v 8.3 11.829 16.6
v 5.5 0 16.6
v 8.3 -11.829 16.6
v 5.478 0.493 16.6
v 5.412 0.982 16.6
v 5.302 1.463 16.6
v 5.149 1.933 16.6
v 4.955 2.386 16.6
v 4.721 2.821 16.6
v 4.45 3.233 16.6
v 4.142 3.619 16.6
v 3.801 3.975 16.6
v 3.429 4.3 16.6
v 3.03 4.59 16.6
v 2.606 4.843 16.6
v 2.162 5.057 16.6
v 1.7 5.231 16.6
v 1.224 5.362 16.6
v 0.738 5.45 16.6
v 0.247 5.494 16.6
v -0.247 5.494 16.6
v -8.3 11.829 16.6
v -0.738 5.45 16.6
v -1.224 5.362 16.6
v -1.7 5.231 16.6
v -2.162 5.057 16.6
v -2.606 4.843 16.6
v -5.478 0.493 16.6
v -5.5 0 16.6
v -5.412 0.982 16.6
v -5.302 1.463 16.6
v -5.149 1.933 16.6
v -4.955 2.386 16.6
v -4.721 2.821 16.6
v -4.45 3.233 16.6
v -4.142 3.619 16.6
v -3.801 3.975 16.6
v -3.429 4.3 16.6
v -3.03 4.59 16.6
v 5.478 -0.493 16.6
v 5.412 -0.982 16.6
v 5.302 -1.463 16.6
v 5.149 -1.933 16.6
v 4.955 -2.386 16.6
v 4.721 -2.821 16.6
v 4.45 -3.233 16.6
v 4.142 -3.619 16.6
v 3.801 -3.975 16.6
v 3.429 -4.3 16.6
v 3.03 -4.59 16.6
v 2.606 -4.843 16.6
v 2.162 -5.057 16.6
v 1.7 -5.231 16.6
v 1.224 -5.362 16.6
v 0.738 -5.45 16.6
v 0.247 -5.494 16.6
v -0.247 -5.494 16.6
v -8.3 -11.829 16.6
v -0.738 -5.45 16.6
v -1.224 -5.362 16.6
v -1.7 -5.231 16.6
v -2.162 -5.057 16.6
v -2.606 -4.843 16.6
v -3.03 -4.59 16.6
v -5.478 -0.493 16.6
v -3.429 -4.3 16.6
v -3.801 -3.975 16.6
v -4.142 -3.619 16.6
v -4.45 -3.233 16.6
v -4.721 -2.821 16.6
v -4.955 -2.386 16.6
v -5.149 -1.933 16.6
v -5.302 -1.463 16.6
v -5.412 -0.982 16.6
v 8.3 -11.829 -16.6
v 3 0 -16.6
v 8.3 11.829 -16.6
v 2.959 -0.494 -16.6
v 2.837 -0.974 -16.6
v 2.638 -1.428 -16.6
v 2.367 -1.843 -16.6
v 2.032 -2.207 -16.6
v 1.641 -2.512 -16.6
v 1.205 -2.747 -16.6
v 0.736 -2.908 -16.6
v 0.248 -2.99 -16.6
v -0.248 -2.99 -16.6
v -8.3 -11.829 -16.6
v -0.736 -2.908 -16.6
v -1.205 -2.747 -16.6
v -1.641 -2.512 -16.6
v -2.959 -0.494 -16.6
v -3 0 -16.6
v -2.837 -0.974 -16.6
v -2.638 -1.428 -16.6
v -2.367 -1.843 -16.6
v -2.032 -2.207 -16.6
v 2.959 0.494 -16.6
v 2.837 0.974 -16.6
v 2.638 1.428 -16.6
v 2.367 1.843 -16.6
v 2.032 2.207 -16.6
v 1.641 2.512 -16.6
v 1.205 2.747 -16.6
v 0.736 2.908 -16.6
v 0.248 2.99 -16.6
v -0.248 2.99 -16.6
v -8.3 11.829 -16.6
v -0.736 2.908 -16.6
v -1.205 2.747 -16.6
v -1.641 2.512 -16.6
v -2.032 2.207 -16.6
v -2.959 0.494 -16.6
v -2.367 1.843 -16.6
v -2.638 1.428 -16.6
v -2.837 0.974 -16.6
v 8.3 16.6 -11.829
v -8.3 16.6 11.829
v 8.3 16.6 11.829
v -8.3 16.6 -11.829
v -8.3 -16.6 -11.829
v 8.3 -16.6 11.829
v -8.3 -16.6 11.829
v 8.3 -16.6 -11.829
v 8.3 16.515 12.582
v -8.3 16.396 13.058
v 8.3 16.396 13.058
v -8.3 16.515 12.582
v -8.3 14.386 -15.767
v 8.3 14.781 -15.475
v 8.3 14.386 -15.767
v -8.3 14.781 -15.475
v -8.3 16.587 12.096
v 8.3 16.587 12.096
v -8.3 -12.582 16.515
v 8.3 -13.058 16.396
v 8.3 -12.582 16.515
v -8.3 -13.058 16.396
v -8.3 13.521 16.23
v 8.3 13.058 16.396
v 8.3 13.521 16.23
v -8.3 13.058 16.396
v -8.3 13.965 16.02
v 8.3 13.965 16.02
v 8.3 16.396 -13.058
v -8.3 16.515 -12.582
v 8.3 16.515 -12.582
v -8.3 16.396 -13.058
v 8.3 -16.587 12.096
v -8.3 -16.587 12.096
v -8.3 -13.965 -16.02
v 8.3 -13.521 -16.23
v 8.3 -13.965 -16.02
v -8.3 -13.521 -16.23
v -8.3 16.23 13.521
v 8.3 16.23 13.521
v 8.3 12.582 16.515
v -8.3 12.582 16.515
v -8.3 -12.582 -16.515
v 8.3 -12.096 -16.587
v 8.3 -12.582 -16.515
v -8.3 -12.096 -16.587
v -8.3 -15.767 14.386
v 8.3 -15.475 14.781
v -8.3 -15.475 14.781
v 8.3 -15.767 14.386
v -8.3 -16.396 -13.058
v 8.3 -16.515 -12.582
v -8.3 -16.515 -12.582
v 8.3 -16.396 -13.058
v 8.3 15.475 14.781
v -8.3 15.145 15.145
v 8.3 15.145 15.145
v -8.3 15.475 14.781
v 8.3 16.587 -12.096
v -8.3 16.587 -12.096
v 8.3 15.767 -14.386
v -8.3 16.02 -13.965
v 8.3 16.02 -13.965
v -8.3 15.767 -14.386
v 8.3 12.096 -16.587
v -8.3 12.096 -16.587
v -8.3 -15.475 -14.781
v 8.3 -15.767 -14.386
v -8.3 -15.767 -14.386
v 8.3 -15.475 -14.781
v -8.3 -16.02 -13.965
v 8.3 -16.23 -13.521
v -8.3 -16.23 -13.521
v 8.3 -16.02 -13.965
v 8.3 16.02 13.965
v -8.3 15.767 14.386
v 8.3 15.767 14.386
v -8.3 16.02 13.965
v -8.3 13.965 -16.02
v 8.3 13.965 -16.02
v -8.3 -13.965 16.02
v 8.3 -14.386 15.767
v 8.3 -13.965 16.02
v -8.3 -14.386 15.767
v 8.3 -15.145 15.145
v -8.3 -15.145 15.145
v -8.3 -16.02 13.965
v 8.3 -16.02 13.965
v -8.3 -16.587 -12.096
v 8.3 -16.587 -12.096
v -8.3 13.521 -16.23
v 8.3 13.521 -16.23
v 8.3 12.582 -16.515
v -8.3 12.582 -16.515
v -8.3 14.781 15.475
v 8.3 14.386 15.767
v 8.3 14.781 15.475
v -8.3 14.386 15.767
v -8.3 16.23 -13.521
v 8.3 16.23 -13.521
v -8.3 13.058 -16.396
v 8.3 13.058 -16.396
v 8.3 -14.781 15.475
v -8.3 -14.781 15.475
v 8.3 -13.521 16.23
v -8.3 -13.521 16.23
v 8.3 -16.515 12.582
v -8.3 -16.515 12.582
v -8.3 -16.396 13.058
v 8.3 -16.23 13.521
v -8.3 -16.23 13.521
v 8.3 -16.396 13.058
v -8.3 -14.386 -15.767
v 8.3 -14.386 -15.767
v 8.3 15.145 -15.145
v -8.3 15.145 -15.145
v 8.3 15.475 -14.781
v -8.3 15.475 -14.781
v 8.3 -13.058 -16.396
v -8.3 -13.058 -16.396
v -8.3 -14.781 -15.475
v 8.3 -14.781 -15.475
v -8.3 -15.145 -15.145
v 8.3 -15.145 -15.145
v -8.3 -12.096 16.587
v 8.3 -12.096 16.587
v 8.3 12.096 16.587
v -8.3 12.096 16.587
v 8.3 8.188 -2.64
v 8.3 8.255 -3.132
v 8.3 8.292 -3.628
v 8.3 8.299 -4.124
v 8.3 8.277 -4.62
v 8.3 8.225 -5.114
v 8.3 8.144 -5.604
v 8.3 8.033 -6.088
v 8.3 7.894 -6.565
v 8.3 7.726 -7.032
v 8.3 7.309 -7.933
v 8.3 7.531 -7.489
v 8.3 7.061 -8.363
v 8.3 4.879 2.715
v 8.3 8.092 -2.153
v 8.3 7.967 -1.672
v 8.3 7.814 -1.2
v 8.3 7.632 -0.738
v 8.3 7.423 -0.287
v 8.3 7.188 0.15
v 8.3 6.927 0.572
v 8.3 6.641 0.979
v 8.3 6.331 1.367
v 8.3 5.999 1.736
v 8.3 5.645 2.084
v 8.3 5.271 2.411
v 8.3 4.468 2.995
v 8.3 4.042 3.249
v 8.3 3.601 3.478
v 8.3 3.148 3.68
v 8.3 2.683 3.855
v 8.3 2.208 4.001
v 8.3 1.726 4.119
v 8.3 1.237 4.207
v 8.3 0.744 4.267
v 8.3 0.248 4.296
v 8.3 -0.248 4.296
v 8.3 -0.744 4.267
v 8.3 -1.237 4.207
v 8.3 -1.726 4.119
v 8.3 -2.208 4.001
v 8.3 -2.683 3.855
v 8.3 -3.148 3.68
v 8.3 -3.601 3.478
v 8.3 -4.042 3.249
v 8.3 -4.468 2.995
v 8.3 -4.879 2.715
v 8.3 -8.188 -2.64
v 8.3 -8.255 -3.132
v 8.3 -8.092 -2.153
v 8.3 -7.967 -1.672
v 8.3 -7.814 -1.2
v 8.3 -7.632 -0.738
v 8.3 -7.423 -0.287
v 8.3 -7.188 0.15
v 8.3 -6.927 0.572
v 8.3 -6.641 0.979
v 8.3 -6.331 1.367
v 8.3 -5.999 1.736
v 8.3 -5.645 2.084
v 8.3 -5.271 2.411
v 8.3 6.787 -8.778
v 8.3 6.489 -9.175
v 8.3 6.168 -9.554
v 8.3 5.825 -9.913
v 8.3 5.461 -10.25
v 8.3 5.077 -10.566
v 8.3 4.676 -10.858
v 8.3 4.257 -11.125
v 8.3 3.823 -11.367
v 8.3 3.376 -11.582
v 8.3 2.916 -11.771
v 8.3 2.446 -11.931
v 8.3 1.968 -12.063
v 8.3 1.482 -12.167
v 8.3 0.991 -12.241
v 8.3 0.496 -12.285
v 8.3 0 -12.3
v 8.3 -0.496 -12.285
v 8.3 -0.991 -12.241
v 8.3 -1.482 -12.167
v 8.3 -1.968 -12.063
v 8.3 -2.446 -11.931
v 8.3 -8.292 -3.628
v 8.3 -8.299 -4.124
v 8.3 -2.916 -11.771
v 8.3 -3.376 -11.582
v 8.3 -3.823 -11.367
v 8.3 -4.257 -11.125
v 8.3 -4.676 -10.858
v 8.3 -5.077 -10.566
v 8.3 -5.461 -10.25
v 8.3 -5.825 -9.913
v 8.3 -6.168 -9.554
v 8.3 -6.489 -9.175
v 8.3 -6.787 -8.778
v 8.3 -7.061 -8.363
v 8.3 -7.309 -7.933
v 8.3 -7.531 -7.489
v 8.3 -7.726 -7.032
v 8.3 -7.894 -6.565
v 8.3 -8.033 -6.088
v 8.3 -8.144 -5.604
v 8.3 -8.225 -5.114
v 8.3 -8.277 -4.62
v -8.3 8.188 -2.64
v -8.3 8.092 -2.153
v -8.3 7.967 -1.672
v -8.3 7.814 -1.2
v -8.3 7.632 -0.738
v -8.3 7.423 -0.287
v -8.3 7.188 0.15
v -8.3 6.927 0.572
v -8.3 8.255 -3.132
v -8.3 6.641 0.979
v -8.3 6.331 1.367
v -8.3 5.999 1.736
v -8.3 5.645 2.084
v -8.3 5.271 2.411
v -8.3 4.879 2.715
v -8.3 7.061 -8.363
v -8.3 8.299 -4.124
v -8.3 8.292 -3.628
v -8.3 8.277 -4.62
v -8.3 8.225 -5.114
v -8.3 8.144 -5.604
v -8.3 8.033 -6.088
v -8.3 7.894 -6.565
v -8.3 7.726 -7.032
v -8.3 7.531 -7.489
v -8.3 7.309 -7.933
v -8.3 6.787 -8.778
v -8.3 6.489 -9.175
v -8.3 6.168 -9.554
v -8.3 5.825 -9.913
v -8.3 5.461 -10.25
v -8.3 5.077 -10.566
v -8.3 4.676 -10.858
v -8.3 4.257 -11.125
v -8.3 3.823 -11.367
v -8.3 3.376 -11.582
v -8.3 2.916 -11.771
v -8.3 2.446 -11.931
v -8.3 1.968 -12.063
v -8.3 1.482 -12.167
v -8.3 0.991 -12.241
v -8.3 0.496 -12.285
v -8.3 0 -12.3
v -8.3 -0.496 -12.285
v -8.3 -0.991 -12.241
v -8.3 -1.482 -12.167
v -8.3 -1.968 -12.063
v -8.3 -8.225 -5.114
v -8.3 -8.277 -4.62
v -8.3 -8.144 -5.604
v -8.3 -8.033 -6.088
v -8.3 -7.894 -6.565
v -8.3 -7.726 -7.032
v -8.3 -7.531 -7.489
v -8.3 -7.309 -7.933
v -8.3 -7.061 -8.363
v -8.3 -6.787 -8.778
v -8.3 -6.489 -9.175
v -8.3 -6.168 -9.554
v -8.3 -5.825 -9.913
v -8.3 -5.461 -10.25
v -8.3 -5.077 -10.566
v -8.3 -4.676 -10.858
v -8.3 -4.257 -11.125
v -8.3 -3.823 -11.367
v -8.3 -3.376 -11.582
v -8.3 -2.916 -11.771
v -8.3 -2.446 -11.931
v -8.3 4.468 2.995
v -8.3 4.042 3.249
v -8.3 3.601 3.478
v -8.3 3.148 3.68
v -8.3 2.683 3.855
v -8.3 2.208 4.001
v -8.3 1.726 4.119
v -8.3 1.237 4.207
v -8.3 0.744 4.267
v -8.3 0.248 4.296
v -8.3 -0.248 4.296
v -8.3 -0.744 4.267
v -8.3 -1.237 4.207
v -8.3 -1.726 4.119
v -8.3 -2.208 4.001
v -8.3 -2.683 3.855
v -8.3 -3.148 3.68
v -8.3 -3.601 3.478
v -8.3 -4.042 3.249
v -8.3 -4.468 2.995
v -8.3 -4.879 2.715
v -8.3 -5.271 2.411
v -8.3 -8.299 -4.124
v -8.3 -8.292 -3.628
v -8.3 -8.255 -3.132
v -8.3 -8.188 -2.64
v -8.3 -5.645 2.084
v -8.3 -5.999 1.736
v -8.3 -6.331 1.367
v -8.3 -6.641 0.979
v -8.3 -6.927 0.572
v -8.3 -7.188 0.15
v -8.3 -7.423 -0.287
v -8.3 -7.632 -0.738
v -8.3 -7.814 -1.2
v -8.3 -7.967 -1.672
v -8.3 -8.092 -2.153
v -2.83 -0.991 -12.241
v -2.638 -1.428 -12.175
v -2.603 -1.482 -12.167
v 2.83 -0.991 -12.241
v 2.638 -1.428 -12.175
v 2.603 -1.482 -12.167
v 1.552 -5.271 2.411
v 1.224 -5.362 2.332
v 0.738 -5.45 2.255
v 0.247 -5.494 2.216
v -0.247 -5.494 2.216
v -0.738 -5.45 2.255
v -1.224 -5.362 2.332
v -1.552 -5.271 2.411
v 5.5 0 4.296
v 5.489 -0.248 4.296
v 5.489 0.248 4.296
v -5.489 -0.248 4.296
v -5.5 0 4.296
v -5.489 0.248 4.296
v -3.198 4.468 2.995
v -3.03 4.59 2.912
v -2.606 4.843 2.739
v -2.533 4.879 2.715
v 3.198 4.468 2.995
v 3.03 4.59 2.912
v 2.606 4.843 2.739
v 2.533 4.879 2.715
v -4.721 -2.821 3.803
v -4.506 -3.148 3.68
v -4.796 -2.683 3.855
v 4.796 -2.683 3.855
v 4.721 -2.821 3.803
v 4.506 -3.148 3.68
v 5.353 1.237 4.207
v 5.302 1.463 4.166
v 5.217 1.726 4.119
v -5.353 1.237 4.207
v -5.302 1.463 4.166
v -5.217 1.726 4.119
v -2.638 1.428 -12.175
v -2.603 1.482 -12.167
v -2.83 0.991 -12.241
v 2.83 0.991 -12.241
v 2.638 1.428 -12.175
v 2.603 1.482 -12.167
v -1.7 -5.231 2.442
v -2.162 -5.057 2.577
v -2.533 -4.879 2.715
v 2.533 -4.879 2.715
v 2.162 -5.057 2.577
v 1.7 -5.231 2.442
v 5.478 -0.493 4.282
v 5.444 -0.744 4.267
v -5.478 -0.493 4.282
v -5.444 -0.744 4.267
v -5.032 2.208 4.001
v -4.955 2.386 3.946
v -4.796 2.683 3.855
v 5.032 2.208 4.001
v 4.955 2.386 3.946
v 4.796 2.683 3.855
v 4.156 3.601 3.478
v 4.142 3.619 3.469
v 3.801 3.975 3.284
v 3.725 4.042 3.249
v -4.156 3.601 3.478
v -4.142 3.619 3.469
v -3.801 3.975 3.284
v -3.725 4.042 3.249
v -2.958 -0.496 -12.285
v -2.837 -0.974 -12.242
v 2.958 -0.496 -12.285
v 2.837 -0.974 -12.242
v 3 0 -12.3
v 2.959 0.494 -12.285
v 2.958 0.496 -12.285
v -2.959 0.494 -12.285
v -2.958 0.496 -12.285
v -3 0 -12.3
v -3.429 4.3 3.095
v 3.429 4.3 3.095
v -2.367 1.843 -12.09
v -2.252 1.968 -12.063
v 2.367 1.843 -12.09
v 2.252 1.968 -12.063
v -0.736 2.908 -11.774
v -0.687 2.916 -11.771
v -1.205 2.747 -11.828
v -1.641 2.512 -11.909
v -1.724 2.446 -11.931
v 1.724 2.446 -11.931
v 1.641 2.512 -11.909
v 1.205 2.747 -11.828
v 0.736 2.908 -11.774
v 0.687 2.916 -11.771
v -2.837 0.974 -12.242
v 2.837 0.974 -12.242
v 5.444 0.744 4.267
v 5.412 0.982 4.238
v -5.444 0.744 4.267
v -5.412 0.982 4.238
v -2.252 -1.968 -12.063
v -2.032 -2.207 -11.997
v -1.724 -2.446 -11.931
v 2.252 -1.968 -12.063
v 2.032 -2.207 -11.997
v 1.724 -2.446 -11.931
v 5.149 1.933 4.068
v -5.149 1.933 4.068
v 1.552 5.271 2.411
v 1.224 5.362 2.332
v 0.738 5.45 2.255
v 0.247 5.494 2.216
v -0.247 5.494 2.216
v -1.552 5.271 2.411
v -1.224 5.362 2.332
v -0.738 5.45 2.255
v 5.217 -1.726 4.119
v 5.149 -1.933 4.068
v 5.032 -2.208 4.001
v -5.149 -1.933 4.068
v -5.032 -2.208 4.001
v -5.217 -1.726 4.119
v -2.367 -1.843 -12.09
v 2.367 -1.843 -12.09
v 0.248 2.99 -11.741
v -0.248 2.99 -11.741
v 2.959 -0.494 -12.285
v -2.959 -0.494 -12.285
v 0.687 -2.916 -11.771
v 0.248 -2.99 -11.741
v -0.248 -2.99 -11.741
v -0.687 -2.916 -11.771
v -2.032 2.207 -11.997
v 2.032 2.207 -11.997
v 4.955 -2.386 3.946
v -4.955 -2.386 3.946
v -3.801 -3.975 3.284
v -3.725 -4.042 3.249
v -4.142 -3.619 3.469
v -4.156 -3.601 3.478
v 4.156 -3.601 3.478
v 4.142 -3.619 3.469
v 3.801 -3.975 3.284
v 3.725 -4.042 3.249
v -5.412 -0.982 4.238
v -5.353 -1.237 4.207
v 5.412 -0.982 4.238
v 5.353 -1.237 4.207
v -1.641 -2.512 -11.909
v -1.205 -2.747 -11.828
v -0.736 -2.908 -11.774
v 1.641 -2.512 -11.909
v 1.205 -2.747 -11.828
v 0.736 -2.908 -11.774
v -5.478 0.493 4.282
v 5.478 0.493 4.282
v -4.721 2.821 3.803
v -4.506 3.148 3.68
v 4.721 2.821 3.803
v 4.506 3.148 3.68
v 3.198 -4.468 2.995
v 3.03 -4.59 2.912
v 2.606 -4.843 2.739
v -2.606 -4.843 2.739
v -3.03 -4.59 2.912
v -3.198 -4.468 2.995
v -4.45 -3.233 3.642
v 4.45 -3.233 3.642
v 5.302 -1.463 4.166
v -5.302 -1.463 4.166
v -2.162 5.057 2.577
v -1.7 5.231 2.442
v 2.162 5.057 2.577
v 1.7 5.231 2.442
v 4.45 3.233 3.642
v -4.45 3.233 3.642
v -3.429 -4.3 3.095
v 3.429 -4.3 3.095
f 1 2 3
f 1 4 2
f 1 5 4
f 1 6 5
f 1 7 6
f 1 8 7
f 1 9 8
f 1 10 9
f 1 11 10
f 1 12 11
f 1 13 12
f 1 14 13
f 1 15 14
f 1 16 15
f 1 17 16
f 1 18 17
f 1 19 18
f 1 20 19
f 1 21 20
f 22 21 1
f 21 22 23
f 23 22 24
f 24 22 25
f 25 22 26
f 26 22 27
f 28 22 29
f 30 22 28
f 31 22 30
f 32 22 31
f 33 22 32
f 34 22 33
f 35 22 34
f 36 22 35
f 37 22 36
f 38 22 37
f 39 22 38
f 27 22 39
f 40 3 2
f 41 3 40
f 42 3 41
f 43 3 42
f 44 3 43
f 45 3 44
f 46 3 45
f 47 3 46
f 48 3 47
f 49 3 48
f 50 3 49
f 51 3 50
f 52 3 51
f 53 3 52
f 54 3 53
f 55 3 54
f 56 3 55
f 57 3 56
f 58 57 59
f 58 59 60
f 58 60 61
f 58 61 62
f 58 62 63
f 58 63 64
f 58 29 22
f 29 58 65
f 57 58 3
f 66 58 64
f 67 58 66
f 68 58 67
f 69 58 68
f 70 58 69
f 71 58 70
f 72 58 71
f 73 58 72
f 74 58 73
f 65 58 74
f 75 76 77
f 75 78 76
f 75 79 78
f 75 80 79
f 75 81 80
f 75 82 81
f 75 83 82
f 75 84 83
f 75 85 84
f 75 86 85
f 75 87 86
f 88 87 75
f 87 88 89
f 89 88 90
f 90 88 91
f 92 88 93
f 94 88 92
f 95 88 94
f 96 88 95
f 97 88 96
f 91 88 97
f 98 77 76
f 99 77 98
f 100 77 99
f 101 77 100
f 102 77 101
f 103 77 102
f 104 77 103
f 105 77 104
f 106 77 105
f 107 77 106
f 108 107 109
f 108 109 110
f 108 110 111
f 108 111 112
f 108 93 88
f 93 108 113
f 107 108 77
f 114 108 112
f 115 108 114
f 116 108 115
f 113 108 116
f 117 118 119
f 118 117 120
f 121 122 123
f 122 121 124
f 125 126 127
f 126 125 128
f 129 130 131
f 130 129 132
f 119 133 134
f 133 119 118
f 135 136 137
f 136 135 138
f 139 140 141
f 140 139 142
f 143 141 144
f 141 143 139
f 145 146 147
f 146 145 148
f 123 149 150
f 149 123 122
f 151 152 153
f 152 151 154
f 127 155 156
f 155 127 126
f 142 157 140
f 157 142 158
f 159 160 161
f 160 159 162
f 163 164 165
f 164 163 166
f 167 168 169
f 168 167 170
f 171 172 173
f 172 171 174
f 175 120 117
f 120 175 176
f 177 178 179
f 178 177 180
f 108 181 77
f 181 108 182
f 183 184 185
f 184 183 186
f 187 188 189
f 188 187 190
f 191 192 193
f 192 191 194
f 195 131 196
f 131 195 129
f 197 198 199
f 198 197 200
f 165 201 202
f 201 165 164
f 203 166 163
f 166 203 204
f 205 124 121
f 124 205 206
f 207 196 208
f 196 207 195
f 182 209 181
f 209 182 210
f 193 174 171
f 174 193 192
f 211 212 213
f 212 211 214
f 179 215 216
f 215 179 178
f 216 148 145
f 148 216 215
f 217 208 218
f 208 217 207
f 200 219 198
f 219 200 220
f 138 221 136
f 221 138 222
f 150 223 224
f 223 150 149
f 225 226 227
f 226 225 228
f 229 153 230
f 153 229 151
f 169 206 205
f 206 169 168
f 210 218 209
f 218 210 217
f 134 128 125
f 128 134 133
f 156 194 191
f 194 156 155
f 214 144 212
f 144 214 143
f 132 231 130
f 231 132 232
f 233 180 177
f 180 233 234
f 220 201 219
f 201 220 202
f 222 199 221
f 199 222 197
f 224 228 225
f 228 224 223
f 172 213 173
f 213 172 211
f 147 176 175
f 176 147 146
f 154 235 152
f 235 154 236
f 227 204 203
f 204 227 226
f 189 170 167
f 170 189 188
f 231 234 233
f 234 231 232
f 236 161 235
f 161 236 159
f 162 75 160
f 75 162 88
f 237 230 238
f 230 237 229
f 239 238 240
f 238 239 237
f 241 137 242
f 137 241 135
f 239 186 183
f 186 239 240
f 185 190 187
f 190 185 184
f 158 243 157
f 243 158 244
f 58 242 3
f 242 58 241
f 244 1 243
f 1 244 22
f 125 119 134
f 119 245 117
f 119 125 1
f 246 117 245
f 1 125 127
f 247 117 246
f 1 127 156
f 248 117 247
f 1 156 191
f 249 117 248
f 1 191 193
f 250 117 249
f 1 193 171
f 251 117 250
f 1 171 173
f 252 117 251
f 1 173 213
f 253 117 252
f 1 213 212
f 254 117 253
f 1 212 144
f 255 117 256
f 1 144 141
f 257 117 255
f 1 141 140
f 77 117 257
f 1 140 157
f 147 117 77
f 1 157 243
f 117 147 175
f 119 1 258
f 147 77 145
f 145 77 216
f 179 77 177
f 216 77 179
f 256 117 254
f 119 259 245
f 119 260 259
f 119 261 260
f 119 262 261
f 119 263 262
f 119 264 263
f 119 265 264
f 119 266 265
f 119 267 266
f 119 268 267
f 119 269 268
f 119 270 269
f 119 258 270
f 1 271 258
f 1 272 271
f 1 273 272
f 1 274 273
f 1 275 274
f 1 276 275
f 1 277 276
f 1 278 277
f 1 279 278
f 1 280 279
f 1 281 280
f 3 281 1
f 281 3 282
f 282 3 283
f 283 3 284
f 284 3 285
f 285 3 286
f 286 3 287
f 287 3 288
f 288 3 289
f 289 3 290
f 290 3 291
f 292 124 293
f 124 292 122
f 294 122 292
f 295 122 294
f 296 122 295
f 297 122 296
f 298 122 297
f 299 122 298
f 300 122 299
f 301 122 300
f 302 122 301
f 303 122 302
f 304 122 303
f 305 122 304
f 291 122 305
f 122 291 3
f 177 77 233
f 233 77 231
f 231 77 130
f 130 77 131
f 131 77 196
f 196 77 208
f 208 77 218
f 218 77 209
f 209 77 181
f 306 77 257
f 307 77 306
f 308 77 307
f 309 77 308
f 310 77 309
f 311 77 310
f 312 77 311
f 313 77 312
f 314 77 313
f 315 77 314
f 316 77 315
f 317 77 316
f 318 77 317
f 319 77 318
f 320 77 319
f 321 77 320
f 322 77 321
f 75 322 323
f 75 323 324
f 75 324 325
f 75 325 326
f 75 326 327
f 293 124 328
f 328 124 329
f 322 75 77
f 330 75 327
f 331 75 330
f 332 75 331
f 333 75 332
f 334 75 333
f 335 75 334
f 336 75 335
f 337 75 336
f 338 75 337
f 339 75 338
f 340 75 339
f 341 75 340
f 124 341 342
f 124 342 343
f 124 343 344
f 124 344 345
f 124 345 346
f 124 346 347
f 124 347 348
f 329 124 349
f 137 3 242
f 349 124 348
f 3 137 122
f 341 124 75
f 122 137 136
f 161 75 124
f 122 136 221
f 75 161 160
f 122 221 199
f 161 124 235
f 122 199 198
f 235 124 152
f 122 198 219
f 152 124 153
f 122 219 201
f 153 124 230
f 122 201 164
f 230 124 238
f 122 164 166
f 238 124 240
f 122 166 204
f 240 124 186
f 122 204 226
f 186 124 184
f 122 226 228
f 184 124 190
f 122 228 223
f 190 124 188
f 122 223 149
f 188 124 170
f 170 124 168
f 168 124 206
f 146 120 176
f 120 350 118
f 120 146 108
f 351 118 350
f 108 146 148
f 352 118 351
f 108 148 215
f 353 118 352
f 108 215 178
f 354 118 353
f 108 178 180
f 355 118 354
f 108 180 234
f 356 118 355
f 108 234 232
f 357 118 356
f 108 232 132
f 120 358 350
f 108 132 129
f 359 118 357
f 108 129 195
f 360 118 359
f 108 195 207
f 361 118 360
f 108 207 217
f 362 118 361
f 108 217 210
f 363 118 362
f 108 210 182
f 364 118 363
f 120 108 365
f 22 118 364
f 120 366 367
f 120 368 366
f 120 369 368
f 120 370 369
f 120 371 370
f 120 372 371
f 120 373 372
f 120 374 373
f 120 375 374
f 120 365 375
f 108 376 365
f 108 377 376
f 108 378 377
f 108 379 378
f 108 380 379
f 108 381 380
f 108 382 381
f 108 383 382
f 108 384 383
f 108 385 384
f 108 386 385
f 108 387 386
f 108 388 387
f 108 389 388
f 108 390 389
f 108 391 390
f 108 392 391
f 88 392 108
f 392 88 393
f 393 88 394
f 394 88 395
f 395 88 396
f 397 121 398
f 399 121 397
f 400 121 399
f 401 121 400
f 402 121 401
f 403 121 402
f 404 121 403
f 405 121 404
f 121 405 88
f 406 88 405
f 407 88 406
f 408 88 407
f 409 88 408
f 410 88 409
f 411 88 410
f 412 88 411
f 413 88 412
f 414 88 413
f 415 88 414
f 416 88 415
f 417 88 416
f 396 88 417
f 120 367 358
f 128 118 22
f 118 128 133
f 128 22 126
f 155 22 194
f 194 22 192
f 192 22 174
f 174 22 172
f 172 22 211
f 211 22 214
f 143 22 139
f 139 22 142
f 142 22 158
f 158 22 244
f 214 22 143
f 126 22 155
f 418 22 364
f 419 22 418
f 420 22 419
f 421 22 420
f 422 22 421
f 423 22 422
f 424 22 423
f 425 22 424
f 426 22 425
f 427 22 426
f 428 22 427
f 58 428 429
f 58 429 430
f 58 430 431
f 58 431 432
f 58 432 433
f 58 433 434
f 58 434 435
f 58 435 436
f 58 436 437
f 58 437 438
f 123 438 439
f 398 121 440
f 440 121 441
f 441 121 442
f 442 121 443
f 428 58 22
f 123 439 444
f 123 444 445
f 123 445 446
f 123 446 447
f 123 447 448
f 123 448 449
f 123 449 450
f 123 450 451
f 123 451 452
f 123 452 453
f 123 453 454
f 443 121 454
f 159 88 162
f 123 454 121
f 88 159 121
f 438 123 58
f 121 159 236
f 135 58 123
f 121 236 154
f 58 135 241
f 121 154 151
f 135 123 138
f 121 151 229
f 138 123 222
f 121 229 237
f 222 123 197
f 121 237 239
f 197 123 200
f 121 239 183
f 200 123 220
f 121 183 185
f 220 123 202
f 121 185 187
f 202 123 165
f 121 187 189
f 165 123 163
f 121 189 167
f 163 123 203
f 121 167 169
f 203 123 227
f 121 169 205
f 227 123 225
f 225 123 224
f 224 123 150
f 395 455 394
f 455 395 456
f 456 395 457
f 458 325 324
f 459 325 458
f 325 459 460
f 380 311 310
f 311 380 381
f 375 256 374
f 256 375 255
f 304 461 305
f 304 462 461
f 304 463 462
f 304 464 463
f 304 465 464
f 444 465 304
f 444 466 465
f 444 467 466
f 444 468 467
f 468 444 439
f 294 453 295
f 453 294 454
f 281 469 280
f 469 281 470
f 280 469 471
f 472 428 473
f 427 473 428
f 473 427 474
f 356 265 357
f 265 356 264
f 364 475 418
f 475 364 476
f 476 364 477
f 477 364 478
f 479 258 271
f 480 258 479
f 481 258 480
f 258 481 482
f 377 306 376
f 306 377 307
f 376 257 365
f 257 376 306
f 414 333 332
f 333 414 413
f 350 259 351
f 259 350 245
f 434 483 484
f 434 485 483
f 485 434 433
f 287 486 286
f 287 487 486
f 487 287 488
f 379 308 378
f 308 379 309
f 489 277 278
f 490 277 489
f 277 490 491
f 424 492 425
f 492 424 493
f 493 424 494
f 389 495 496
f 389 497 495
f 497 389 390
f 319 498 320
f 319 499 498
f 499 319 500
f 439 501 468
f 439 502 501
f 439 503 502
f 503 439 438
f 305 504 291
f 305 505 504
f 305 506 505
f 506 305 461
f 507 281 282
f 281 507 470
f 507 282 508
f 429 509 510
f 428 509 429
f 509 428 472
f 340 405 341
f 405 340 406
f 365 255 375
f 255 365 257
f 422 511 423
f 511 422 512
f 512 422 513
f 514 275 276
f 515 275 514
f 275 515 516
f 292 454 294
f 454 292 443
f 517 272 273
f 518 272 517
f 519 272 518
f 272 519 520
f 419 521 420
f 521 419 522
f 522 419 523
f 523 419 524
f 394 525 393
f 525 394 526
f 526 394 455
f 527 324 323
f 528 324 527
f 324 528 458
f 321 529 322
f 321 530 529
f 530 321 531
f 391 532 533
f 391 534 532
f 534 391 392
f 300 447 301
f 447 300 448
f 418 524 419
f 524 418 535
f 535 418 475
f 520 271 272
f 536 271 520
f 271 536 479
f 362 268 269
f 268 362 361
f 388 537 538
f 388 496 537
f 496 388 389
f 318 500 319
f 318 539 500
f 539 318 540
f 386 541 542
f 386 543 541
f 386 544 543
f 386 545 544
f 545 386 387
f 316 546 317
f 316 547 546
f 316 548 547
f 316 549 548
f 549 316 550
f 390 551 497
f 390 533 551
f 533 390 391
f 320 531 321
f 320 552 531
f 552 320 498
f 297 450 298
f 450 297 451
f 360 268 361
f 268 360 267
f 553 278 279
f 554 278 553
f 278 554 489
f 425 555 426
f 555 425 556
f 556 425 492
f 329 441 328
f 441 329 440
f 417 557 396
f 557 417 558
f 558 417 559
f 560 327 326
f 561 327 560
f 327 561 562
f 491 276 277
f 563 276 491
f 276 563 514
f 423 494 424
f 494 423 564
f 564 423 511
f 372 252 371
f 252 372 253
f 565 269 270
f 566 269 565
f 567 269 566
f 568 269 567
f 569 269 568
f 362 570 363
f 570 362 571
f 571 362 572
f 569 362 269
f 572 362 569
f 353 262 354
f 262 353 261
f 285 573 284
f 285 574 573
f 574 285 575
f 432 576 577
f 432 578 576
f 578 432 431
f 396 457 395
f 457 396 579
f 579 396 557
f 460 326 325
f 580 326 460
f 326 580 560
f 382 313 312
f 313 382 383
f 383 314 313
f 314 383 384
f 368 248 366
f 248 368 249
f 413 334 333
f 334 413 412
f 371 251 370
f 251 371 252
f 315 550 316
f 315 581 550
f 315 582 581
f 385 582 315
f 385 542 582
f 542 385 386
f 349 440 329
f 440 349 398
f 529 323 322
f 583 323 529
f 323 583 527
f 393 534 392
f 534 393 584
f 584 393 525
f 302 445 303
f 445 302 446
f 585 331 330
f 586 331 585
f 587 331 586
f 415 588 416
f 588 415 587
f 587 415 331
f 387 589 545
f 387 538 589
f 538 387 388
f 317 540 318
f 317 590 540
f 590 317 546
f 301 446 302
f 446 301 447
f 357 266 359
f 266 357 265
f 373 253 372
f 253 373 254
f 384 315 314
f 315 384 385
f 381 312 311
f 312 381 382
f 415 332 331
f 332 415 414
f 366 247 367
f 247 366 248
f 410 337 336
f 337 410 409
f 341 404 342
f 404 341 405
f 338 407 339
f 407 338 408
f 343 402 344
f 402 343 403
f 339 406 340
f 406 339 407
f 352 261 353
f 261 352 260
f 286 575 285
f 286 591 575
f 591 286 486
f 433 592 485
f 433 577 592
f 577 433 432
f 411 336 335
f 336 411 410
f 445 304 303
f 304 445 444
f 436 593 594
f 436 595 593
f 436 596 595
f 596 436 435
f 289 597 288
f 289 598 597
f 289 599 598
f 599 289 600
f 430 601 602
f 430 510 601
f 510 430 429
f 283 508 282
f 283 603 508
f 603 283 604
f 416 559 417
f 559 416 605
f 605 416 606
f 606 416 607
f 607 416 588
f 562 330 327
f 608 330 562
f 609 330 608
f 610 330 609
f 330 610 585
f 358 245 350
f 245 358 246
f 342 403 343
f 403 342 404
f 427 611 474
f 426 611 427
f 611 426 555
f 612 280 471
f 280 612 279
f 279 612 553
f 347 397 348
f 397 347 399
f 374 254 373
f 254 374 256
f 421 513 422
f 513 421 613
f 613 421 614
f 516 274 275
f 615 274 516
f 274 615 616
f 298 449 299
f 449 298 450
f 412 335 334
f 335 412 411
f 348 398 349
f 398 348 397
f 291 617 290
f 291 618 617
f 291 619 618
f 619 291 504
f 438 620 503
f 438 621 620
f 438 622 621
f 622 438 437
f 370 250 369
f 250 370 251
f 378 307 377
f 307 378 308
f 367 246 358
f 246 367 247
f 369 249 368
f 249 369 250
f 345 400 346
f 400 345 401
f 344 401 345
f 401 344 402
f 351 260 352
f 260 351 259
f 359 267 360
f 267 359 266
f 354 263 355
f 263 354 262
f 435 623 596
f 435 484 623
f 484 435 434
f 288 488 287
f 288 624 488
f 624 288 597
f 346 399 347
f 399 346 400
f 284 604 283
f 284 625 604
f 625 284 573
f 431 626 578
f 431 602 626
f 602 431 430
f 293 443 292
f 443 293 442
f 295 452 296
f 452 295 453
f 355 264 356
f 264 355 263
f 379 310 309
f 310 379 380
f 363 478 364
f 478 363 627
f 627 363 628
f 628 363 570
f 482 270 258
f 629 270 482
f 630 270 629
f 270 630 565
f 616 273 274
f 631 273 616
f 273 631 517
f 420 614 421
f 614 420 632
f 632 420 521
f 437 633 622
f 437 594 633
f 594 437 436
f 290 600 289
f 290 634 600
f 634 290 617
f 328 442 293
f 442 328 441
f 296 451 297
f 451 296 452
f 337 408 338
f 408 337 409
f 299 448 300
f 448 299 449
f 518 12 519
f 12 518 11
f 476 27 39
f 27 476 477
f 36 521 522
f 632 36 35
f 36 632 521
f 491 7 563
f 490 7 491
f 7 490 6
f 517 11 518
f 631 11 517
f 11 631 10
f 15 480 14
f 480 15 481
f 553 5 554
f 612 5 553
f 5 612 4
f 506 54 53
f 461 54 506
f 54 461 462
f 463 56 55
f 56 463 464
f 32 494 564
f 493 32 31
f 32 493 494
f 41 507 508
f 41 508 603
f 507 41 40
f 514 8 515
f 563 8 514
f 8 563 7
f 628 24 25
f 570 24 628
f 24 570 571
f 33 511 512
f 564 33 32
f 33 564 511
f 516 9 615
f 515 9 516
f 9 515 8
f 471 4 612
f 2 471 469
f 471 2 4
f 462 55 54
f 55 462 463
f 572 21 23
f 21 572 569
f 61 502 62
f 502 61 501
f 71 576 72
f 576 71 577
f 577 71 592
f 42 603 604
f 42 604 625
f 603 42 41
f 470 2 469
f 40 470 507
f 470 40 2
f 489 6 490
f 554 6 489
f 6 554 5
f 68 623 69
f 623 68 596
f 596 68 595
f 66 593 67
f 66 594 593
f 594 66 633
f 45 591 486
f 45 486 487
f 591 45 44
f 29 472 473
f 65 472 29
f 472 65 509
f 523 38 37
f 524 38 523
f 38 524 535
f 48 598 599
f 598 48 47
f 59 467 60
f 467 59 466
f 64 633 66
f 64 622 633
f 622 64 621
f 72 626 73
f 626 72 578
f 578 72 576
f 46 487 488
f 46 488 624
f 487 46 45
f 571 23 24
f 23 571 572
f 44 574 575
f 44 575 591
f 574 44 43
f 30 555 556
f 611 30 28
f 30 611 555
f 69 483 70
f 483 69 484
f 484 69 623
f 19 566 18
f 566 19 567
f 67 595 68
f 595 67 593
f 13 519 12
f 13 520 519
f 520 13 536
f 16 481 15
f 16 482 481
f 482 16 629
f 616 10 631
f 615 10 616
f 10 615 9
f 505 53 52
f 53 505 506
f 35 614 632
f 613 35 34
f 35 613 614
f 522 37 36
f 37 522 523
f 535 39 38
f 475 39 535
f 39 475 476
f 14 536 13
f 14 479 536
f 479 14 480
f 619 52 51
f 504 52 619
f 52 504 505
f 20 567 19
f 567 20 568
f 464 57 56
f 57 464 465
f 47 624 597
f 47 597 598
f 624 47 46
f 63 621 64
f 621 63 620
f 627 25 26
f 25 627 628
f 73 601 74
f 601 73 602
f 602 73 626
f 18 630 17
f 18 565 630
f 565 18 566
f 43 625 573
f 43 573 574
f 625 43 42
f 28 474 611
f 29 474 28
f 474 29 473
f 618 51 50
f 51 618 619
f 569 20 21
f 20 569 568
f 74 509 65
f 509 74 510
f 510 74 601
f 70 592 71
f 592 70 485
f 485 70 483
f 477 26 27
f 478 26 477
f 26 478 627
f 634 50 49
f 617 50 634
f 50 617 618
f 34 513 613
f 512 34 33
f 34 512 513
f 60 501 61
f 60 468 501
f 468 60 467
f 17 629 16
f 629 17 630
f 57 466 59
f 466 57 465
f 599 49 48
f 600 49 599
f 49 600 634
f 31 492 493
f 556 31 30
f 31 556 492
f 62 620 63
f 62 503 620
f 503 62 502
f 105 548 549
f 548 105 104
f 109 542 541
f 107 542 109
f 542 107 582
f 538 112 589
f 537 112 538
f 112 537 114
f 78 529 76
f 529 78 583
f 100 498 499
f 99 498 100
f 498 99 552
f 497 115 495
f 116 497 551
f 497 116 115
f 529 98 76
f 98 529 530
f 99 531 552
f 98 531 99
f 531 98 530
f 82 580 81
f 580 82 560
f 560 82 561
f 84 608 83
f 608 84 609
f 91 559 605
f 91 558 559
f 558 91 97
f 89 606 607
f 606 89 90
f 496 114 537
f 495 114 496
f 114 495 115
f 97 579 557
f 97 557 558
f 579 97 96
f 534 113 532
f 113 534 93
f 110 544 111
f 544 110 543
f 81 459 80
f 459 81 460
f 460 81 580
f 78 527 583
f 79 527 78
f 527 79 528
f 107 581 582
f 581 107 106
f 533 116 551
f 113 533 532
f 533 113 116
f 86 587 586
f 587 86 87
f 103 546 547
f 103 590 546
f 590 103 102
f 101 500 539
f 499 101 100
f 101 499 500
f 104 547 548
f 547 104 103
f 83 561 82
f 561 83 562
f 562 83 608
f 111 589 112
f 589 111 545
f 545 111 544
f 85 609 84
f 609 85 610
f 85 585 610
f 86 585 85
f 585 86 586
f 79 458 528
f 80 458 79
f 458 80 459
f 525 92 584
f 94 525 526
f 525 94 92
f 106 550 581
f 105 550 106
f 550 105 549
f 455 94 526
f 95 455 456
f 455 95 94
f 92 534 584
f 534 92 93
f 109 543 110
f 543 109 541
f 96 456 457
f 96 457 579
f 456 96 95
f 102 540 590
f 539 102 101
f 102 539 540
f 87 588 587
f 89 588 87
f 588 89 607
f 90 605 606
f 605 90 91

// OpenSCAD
include <BOSL/constants.scad>
use <BOSL/transforms.scad>
use <BOSL/masks.scad>

BEEF = 4;
BAR = 16.60/2;       // bar goes through it 
CUBE = BEEF * BAR;       // cube side
SCREW_TOP = 11/2;  // screw passes through here
SCREW_BOT = 6/2;   // screw head
FUDGE = 1.0;       // FF

$fa = 1;
$fs = 0.5;

module body() {
    fillet(fillet=5, size=[CUBE*2,CUBE,CUBE]) {
      cube(size=[CUBE/2,CUBE,CUBE], center=true);
    }
}

module holes() {
rotate([0,90,0]) { cylinder(h=CUBE+FUDGE, r=BAR, center=true); }
rotate([0,0,0])  { cylinder(h=CUBE+FUDGE, r=SCREW_TOP, center=false); }
rotate([0,0,0])  { cylinder(h=CUBE+FUDGE, r=SCREW_BOT, center=true); }
}


difference () {
    body();
    translate([0,0,-4]){holes();}
}
